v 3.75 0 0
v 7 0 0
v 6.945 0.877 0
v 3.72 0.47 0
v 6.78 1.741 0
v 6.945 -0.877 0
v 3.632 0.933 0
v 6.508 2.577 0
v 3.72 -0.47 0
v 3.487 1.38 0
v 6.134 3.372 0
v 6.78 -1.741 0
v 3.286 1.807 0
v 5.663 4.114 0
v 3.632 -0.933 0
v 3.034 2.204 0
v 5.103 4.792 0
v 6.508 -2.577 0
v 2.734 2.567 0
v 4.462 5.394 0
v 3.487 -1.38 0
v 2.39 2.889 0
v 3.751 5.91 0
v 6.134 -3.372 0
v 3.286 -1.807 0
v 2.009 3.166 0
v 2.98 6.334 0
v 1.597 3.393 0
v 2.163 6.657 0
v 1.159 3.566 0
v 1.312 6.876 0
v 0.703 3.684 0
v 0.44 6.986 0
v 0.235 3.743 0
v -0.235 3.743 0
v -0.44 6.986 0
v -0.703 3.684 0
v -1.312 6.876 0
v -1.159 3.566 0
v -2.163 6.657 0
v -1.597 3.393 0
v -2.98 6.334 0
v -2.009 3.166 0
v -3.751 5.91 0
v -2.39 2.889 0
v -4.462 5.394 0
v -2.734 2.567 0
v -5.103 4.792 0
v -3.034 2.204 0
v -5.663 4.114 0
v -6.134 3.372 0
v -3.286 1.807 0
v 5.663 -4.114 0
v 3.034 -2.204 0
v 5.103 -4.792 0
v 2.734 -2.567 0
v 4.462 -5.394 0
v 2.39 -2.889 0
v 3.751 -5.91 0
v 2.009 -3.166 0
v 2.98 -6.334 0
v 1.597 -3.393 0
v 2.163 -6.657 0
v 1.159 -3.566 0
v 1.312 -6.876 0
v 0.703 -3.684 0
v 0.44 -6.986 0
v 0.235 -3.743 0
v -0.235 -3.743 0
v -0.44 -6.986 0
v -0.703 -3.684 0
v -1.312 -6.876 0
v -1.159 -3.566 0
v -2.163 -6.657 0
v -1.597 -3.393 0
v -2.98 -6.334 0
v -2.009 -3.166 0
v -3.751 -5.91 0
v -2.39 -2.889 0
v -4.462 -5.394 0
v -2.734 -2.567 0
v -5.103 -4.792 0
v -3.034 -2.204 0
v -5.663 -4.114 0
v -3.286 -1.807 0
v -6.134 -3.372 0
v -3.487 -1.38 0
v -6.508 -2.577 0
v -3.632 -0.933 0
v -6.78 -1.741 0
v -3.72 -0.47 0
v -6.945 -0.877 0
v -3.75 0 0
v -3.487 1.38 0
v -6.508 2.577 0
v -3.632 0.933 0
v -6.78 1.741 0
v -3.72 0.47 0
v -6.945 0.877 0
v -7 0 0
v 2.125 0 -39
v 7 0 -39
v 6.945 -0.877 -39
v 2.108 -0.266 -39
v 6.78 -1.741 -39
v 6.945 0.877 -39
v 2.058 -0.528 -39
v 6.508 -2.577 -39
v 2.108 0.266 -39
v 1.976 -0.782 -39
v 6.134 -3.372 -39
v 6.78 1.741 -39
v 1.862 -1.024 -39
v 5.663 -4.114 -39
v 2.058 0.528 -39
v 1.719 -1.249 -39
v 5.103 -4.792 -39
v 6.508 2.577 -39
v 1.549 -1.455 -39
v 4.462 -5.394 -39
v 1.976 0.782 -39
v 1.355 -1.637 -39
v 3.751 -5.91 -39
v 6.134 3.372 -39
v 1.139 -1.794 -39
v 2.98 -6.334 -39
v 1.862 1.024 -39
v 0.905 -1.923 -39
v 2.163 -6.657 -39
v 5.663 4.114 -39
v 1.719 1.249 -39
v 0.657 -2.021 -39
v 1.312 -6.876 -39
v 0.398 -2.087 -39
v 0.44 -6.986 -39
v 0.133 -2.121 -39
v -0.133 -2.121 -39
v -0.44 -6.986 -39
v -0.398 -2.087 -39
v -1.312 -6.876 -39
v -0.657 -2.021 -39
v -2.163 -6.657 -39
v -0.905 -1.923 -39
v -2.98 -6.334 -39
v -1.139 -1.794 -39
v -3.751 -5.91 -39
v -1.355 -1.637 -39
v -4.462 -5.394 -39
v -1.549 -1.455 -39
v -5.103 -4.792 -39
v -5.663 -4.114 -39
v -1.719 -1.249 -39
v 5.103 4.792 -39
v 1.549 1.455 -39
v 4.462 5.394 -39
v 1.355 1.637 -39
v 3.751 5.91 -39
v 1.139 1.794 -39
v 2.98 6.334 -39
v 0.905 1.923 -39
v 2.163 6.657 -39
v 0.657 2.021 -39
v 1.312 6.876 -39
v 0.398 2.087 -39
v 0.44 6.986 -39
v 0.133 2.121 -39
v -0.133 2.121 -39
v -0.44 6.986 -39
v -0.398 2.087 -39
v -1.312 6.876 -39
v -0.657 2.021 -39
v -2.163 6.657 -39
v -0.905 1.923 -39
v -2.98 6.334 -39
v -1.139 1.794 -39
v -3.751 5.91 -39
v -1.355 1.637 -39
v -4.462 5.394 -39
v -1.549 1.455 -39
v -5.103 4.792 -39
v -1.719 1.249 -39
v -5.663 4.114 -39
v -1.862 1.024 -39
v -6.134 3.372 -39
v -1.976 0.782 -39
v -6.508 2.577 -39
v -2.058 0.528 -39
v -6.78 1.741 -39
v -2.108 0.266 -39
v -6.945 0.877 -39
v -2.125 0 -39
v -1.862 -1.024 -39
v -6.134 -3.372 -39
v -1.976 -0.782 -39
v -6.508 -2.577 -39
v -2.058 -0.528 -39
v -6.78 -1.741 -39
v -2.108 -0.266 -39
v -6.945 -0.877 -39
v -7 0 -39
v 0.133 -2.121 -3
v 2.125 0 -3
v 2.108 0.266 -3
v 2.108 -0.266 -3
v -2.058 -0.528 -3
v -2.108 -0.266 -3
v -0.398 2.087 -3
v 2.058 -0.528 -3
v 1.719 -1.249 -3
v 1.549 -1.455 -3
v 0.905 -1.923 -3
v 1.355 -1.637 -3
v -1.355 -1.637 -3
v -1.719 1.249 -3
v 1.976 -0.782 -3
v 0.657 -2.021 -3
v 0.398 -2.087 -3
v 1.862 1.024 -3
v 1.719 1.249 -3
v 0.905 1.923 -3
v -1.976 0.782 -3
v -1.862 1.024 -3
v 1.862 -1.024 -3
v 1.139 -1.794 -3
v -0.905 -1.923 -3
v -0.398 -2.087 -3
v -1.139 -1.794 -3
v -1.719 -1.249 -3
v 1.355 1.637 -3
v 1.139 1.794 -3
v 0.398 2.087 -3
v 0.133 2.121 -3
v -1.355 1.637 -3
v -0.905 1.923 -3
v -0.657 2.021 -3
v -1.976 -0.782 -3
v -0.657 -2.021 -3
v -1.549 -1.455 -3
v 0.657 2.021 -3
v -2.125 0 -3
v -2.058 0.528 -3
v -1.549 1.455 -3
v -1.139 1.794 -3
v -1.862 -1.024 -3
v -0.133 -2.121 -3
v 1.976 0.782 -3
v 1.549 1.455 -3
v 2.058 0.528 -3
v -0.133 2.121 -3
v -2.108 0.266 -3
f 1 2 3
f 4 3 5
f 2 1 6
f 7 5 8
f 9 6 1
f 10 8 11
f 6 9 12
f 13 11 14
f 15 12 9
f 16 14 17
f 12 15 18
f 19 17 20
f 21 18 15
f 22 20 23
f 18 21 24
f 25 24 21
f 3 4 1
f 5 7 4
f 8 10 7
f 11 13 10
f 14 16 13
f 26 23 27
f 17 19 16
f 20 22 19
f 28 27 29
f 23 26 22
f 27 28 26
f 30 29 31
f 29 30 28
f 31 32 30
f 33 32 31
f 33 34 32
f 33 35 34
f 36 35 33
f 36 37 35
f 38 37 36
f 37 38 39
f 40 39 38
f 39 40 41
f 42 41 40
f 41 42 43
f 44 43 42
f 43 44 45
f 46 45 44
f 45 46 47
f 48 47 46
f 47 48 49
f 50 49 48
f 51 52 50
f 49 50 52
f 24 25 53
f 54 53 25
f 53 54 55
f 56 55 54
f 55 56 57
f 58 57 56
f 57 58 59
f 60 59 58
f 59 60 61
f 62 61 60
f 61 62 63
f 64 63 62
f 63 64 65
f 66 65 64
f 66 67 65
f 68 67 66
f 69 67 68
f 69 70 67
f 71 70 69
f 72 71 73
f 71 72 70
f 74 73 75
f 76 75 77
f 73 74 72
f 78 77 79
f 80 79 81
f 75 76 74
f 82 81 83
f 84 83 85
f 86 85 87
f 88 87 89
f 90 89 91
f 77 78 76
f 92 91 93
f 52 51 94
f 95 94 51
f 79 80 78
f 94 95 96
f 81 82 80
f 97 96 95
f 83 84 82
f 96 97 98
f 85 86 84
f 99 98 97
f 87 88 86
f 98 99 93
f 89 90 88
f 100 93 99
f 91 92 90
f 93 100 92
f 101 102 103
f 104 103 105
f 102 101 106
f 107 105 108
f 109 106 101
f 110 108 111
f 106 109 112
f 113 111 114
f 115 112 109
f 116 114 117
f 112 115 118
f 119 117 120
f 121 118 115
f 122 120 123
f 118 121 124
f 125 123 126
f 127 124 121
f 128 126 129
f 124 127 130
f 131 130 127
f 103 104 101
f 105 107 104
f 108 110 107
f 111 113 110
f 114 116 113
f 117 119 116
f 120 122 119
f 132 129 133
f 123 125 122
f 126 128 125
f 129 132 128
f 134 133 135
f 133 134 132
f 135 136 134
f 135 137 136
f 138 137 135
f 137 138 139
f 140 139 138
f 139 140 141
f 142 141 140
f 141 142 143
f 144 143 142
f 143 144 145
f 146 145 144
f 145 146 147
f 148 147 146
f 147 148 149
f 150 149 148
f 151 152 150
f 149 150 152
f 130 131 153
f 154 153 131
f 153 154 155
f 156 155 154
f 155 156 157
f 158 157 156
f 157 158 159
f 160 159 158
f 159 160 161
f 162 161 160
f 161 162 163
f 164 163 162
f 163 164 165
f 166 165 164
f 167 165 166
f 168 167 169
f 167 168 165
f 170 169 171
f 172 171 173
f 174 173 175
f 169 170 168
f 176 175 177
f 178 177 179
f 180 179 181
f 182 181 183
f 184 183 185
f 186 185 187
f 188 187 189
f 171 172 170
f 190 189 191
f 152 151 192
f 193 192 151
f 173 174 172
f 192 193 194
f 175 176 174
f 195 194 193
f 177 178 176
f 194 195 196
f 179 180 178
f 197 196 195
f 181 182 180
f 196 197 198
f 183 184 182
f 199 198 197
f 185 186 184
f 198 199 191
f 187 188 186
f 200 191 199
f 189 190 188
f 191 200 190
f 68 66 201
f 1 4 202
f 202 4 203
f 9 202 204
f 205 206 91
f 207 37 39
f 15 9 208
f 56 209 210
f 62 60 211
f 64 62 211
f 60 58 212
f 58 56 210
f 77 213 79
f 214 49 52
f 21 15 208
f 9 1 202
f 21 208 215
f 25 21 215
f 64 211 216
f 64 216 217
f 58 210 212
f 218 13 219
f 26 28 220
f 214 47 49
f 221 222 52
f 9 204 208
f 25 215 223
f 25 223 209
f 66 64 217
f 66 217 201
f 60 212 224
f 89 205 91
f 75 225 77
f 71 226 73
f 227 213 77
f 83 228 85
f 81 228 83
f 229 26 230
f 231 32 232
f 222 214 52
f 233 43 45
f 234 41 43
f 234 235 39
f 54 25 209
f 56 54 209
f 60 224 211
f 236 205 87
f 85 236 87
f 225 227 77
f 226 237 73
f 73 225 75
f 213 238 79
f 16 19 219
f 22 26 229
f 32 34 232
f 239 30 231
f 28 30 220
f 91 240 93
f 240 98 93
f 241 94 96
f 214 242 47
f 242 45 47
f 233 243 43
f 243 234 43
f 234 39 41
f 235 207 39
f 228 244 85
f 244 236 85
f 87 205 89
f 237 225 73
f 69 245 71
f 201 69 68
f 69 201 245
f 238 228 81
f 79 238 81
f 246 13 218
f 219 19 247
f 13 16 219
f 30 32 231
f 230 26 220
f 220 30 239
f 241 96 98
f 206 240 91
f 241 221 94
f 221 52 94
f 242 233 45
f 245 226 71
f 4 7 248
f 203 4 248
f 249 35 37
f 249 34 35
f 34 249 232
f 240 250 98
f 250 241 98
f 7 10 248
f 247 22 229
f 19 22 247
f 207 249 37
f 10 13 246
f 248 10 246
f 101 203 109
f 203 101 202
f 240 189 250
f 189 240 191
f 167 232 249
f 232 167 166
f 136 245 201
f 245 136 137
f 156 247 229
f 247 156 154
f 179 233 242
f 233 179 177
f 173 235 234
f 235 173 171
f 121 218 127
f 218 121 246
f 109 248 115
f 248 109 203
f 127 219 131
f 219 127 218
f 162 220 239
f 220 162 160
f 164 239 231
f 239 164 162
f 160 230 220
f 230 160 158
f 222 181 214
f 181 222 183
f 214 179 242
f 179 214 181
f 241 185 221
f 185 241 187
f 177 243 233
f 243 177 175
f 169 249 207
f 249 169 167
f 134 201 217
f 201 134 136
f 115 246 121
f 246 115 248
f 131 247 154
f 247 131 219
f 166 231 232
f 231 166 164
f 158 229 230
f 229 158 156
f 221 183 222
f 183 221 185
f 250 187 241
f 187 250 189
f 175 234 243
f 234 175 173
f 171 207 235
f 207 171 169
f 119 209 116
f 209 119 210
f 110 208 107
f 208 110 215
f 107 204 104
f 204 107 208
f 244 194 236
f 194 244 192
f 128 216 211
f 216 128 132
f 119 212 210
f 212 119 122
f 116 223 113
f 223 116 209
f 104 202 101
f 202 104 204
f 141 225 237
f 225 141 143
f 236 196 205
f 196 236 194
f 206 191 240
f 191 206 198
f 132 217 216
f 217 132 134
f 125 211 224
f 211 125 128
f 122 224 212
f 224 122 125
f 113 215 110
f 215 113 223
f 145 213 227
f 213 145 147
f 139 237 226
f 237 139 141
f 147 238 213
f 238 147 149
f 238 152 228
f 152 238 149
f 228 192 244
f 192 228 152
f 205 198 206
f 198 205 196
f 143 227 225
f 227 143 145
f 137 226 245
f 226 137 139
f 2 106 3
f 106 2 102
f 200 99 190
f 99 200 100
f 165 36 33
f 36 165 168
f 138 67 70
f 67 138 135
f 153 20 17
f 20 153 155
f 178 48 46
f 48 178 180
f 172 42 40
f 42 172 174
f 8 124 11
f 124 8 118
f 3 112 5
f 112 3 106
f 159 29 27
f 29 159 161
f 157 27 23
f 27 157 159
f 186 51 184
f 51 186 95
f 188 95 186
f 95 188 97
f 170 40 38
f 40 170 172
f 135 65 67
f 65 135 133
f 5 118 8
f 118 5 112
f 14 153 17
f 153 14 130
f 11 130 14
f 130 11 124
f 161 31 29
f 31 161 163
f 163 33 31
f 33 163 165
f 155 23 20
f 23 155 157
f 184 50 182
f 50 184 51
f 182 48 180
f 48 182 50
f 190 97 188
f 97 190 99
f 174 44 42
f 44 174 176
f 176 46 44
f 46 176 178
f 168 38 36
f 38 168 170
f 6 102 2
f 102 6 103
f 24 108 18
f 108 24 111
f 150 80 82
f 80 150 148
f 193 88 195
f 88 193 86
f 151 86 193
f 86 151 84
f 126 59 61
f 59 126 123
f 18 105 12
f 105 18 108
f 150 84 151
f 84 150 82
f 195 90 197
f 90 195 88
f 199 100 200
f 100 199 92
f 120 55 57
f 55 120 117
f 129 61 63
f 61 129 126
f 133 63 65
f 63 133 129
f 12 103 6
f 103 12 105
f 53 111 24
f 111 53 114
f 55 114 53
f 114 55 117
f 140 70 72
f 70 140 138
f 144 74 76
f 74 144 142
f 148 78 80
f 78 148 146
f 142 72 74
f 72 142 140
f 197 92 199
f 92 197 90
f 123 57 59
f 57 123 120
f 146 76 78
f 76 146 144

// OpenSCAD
$fn = 50;


difference() {
	union() {
		translate(v = [0, 0, -39.0000000000]) {
			cylinder(h = 39, r = 7.0000000000);
		}
		cylinder(h = 0, r = 10.0000000000);
	}
	union() {
		translate(v = [0, 0, 0]) {
			rotate(a = [0, 0, 0]) {
				difference() {
					union() {
						#translate(v = [0, 0, -39.0000000000]) {
							cylinder(h = 39, r = 2.0000000000);
						}
						#translate(v = [0, 0, -3]) {
							cylinder(h = 3, r1 = 2.1250000000, r2 = 3.7500000000);
						}
						#translate(v = [0, 0, -39.0000000000]) {
							cylinder(h = 39, r = 2.1250000000);
						}
						#translate(v = [0, 0, -39.0000000000]) {
							cylinder(h = 39, r = 2.0000000000);
						}
					}
					union();
				}
			}
		}
	}
}
